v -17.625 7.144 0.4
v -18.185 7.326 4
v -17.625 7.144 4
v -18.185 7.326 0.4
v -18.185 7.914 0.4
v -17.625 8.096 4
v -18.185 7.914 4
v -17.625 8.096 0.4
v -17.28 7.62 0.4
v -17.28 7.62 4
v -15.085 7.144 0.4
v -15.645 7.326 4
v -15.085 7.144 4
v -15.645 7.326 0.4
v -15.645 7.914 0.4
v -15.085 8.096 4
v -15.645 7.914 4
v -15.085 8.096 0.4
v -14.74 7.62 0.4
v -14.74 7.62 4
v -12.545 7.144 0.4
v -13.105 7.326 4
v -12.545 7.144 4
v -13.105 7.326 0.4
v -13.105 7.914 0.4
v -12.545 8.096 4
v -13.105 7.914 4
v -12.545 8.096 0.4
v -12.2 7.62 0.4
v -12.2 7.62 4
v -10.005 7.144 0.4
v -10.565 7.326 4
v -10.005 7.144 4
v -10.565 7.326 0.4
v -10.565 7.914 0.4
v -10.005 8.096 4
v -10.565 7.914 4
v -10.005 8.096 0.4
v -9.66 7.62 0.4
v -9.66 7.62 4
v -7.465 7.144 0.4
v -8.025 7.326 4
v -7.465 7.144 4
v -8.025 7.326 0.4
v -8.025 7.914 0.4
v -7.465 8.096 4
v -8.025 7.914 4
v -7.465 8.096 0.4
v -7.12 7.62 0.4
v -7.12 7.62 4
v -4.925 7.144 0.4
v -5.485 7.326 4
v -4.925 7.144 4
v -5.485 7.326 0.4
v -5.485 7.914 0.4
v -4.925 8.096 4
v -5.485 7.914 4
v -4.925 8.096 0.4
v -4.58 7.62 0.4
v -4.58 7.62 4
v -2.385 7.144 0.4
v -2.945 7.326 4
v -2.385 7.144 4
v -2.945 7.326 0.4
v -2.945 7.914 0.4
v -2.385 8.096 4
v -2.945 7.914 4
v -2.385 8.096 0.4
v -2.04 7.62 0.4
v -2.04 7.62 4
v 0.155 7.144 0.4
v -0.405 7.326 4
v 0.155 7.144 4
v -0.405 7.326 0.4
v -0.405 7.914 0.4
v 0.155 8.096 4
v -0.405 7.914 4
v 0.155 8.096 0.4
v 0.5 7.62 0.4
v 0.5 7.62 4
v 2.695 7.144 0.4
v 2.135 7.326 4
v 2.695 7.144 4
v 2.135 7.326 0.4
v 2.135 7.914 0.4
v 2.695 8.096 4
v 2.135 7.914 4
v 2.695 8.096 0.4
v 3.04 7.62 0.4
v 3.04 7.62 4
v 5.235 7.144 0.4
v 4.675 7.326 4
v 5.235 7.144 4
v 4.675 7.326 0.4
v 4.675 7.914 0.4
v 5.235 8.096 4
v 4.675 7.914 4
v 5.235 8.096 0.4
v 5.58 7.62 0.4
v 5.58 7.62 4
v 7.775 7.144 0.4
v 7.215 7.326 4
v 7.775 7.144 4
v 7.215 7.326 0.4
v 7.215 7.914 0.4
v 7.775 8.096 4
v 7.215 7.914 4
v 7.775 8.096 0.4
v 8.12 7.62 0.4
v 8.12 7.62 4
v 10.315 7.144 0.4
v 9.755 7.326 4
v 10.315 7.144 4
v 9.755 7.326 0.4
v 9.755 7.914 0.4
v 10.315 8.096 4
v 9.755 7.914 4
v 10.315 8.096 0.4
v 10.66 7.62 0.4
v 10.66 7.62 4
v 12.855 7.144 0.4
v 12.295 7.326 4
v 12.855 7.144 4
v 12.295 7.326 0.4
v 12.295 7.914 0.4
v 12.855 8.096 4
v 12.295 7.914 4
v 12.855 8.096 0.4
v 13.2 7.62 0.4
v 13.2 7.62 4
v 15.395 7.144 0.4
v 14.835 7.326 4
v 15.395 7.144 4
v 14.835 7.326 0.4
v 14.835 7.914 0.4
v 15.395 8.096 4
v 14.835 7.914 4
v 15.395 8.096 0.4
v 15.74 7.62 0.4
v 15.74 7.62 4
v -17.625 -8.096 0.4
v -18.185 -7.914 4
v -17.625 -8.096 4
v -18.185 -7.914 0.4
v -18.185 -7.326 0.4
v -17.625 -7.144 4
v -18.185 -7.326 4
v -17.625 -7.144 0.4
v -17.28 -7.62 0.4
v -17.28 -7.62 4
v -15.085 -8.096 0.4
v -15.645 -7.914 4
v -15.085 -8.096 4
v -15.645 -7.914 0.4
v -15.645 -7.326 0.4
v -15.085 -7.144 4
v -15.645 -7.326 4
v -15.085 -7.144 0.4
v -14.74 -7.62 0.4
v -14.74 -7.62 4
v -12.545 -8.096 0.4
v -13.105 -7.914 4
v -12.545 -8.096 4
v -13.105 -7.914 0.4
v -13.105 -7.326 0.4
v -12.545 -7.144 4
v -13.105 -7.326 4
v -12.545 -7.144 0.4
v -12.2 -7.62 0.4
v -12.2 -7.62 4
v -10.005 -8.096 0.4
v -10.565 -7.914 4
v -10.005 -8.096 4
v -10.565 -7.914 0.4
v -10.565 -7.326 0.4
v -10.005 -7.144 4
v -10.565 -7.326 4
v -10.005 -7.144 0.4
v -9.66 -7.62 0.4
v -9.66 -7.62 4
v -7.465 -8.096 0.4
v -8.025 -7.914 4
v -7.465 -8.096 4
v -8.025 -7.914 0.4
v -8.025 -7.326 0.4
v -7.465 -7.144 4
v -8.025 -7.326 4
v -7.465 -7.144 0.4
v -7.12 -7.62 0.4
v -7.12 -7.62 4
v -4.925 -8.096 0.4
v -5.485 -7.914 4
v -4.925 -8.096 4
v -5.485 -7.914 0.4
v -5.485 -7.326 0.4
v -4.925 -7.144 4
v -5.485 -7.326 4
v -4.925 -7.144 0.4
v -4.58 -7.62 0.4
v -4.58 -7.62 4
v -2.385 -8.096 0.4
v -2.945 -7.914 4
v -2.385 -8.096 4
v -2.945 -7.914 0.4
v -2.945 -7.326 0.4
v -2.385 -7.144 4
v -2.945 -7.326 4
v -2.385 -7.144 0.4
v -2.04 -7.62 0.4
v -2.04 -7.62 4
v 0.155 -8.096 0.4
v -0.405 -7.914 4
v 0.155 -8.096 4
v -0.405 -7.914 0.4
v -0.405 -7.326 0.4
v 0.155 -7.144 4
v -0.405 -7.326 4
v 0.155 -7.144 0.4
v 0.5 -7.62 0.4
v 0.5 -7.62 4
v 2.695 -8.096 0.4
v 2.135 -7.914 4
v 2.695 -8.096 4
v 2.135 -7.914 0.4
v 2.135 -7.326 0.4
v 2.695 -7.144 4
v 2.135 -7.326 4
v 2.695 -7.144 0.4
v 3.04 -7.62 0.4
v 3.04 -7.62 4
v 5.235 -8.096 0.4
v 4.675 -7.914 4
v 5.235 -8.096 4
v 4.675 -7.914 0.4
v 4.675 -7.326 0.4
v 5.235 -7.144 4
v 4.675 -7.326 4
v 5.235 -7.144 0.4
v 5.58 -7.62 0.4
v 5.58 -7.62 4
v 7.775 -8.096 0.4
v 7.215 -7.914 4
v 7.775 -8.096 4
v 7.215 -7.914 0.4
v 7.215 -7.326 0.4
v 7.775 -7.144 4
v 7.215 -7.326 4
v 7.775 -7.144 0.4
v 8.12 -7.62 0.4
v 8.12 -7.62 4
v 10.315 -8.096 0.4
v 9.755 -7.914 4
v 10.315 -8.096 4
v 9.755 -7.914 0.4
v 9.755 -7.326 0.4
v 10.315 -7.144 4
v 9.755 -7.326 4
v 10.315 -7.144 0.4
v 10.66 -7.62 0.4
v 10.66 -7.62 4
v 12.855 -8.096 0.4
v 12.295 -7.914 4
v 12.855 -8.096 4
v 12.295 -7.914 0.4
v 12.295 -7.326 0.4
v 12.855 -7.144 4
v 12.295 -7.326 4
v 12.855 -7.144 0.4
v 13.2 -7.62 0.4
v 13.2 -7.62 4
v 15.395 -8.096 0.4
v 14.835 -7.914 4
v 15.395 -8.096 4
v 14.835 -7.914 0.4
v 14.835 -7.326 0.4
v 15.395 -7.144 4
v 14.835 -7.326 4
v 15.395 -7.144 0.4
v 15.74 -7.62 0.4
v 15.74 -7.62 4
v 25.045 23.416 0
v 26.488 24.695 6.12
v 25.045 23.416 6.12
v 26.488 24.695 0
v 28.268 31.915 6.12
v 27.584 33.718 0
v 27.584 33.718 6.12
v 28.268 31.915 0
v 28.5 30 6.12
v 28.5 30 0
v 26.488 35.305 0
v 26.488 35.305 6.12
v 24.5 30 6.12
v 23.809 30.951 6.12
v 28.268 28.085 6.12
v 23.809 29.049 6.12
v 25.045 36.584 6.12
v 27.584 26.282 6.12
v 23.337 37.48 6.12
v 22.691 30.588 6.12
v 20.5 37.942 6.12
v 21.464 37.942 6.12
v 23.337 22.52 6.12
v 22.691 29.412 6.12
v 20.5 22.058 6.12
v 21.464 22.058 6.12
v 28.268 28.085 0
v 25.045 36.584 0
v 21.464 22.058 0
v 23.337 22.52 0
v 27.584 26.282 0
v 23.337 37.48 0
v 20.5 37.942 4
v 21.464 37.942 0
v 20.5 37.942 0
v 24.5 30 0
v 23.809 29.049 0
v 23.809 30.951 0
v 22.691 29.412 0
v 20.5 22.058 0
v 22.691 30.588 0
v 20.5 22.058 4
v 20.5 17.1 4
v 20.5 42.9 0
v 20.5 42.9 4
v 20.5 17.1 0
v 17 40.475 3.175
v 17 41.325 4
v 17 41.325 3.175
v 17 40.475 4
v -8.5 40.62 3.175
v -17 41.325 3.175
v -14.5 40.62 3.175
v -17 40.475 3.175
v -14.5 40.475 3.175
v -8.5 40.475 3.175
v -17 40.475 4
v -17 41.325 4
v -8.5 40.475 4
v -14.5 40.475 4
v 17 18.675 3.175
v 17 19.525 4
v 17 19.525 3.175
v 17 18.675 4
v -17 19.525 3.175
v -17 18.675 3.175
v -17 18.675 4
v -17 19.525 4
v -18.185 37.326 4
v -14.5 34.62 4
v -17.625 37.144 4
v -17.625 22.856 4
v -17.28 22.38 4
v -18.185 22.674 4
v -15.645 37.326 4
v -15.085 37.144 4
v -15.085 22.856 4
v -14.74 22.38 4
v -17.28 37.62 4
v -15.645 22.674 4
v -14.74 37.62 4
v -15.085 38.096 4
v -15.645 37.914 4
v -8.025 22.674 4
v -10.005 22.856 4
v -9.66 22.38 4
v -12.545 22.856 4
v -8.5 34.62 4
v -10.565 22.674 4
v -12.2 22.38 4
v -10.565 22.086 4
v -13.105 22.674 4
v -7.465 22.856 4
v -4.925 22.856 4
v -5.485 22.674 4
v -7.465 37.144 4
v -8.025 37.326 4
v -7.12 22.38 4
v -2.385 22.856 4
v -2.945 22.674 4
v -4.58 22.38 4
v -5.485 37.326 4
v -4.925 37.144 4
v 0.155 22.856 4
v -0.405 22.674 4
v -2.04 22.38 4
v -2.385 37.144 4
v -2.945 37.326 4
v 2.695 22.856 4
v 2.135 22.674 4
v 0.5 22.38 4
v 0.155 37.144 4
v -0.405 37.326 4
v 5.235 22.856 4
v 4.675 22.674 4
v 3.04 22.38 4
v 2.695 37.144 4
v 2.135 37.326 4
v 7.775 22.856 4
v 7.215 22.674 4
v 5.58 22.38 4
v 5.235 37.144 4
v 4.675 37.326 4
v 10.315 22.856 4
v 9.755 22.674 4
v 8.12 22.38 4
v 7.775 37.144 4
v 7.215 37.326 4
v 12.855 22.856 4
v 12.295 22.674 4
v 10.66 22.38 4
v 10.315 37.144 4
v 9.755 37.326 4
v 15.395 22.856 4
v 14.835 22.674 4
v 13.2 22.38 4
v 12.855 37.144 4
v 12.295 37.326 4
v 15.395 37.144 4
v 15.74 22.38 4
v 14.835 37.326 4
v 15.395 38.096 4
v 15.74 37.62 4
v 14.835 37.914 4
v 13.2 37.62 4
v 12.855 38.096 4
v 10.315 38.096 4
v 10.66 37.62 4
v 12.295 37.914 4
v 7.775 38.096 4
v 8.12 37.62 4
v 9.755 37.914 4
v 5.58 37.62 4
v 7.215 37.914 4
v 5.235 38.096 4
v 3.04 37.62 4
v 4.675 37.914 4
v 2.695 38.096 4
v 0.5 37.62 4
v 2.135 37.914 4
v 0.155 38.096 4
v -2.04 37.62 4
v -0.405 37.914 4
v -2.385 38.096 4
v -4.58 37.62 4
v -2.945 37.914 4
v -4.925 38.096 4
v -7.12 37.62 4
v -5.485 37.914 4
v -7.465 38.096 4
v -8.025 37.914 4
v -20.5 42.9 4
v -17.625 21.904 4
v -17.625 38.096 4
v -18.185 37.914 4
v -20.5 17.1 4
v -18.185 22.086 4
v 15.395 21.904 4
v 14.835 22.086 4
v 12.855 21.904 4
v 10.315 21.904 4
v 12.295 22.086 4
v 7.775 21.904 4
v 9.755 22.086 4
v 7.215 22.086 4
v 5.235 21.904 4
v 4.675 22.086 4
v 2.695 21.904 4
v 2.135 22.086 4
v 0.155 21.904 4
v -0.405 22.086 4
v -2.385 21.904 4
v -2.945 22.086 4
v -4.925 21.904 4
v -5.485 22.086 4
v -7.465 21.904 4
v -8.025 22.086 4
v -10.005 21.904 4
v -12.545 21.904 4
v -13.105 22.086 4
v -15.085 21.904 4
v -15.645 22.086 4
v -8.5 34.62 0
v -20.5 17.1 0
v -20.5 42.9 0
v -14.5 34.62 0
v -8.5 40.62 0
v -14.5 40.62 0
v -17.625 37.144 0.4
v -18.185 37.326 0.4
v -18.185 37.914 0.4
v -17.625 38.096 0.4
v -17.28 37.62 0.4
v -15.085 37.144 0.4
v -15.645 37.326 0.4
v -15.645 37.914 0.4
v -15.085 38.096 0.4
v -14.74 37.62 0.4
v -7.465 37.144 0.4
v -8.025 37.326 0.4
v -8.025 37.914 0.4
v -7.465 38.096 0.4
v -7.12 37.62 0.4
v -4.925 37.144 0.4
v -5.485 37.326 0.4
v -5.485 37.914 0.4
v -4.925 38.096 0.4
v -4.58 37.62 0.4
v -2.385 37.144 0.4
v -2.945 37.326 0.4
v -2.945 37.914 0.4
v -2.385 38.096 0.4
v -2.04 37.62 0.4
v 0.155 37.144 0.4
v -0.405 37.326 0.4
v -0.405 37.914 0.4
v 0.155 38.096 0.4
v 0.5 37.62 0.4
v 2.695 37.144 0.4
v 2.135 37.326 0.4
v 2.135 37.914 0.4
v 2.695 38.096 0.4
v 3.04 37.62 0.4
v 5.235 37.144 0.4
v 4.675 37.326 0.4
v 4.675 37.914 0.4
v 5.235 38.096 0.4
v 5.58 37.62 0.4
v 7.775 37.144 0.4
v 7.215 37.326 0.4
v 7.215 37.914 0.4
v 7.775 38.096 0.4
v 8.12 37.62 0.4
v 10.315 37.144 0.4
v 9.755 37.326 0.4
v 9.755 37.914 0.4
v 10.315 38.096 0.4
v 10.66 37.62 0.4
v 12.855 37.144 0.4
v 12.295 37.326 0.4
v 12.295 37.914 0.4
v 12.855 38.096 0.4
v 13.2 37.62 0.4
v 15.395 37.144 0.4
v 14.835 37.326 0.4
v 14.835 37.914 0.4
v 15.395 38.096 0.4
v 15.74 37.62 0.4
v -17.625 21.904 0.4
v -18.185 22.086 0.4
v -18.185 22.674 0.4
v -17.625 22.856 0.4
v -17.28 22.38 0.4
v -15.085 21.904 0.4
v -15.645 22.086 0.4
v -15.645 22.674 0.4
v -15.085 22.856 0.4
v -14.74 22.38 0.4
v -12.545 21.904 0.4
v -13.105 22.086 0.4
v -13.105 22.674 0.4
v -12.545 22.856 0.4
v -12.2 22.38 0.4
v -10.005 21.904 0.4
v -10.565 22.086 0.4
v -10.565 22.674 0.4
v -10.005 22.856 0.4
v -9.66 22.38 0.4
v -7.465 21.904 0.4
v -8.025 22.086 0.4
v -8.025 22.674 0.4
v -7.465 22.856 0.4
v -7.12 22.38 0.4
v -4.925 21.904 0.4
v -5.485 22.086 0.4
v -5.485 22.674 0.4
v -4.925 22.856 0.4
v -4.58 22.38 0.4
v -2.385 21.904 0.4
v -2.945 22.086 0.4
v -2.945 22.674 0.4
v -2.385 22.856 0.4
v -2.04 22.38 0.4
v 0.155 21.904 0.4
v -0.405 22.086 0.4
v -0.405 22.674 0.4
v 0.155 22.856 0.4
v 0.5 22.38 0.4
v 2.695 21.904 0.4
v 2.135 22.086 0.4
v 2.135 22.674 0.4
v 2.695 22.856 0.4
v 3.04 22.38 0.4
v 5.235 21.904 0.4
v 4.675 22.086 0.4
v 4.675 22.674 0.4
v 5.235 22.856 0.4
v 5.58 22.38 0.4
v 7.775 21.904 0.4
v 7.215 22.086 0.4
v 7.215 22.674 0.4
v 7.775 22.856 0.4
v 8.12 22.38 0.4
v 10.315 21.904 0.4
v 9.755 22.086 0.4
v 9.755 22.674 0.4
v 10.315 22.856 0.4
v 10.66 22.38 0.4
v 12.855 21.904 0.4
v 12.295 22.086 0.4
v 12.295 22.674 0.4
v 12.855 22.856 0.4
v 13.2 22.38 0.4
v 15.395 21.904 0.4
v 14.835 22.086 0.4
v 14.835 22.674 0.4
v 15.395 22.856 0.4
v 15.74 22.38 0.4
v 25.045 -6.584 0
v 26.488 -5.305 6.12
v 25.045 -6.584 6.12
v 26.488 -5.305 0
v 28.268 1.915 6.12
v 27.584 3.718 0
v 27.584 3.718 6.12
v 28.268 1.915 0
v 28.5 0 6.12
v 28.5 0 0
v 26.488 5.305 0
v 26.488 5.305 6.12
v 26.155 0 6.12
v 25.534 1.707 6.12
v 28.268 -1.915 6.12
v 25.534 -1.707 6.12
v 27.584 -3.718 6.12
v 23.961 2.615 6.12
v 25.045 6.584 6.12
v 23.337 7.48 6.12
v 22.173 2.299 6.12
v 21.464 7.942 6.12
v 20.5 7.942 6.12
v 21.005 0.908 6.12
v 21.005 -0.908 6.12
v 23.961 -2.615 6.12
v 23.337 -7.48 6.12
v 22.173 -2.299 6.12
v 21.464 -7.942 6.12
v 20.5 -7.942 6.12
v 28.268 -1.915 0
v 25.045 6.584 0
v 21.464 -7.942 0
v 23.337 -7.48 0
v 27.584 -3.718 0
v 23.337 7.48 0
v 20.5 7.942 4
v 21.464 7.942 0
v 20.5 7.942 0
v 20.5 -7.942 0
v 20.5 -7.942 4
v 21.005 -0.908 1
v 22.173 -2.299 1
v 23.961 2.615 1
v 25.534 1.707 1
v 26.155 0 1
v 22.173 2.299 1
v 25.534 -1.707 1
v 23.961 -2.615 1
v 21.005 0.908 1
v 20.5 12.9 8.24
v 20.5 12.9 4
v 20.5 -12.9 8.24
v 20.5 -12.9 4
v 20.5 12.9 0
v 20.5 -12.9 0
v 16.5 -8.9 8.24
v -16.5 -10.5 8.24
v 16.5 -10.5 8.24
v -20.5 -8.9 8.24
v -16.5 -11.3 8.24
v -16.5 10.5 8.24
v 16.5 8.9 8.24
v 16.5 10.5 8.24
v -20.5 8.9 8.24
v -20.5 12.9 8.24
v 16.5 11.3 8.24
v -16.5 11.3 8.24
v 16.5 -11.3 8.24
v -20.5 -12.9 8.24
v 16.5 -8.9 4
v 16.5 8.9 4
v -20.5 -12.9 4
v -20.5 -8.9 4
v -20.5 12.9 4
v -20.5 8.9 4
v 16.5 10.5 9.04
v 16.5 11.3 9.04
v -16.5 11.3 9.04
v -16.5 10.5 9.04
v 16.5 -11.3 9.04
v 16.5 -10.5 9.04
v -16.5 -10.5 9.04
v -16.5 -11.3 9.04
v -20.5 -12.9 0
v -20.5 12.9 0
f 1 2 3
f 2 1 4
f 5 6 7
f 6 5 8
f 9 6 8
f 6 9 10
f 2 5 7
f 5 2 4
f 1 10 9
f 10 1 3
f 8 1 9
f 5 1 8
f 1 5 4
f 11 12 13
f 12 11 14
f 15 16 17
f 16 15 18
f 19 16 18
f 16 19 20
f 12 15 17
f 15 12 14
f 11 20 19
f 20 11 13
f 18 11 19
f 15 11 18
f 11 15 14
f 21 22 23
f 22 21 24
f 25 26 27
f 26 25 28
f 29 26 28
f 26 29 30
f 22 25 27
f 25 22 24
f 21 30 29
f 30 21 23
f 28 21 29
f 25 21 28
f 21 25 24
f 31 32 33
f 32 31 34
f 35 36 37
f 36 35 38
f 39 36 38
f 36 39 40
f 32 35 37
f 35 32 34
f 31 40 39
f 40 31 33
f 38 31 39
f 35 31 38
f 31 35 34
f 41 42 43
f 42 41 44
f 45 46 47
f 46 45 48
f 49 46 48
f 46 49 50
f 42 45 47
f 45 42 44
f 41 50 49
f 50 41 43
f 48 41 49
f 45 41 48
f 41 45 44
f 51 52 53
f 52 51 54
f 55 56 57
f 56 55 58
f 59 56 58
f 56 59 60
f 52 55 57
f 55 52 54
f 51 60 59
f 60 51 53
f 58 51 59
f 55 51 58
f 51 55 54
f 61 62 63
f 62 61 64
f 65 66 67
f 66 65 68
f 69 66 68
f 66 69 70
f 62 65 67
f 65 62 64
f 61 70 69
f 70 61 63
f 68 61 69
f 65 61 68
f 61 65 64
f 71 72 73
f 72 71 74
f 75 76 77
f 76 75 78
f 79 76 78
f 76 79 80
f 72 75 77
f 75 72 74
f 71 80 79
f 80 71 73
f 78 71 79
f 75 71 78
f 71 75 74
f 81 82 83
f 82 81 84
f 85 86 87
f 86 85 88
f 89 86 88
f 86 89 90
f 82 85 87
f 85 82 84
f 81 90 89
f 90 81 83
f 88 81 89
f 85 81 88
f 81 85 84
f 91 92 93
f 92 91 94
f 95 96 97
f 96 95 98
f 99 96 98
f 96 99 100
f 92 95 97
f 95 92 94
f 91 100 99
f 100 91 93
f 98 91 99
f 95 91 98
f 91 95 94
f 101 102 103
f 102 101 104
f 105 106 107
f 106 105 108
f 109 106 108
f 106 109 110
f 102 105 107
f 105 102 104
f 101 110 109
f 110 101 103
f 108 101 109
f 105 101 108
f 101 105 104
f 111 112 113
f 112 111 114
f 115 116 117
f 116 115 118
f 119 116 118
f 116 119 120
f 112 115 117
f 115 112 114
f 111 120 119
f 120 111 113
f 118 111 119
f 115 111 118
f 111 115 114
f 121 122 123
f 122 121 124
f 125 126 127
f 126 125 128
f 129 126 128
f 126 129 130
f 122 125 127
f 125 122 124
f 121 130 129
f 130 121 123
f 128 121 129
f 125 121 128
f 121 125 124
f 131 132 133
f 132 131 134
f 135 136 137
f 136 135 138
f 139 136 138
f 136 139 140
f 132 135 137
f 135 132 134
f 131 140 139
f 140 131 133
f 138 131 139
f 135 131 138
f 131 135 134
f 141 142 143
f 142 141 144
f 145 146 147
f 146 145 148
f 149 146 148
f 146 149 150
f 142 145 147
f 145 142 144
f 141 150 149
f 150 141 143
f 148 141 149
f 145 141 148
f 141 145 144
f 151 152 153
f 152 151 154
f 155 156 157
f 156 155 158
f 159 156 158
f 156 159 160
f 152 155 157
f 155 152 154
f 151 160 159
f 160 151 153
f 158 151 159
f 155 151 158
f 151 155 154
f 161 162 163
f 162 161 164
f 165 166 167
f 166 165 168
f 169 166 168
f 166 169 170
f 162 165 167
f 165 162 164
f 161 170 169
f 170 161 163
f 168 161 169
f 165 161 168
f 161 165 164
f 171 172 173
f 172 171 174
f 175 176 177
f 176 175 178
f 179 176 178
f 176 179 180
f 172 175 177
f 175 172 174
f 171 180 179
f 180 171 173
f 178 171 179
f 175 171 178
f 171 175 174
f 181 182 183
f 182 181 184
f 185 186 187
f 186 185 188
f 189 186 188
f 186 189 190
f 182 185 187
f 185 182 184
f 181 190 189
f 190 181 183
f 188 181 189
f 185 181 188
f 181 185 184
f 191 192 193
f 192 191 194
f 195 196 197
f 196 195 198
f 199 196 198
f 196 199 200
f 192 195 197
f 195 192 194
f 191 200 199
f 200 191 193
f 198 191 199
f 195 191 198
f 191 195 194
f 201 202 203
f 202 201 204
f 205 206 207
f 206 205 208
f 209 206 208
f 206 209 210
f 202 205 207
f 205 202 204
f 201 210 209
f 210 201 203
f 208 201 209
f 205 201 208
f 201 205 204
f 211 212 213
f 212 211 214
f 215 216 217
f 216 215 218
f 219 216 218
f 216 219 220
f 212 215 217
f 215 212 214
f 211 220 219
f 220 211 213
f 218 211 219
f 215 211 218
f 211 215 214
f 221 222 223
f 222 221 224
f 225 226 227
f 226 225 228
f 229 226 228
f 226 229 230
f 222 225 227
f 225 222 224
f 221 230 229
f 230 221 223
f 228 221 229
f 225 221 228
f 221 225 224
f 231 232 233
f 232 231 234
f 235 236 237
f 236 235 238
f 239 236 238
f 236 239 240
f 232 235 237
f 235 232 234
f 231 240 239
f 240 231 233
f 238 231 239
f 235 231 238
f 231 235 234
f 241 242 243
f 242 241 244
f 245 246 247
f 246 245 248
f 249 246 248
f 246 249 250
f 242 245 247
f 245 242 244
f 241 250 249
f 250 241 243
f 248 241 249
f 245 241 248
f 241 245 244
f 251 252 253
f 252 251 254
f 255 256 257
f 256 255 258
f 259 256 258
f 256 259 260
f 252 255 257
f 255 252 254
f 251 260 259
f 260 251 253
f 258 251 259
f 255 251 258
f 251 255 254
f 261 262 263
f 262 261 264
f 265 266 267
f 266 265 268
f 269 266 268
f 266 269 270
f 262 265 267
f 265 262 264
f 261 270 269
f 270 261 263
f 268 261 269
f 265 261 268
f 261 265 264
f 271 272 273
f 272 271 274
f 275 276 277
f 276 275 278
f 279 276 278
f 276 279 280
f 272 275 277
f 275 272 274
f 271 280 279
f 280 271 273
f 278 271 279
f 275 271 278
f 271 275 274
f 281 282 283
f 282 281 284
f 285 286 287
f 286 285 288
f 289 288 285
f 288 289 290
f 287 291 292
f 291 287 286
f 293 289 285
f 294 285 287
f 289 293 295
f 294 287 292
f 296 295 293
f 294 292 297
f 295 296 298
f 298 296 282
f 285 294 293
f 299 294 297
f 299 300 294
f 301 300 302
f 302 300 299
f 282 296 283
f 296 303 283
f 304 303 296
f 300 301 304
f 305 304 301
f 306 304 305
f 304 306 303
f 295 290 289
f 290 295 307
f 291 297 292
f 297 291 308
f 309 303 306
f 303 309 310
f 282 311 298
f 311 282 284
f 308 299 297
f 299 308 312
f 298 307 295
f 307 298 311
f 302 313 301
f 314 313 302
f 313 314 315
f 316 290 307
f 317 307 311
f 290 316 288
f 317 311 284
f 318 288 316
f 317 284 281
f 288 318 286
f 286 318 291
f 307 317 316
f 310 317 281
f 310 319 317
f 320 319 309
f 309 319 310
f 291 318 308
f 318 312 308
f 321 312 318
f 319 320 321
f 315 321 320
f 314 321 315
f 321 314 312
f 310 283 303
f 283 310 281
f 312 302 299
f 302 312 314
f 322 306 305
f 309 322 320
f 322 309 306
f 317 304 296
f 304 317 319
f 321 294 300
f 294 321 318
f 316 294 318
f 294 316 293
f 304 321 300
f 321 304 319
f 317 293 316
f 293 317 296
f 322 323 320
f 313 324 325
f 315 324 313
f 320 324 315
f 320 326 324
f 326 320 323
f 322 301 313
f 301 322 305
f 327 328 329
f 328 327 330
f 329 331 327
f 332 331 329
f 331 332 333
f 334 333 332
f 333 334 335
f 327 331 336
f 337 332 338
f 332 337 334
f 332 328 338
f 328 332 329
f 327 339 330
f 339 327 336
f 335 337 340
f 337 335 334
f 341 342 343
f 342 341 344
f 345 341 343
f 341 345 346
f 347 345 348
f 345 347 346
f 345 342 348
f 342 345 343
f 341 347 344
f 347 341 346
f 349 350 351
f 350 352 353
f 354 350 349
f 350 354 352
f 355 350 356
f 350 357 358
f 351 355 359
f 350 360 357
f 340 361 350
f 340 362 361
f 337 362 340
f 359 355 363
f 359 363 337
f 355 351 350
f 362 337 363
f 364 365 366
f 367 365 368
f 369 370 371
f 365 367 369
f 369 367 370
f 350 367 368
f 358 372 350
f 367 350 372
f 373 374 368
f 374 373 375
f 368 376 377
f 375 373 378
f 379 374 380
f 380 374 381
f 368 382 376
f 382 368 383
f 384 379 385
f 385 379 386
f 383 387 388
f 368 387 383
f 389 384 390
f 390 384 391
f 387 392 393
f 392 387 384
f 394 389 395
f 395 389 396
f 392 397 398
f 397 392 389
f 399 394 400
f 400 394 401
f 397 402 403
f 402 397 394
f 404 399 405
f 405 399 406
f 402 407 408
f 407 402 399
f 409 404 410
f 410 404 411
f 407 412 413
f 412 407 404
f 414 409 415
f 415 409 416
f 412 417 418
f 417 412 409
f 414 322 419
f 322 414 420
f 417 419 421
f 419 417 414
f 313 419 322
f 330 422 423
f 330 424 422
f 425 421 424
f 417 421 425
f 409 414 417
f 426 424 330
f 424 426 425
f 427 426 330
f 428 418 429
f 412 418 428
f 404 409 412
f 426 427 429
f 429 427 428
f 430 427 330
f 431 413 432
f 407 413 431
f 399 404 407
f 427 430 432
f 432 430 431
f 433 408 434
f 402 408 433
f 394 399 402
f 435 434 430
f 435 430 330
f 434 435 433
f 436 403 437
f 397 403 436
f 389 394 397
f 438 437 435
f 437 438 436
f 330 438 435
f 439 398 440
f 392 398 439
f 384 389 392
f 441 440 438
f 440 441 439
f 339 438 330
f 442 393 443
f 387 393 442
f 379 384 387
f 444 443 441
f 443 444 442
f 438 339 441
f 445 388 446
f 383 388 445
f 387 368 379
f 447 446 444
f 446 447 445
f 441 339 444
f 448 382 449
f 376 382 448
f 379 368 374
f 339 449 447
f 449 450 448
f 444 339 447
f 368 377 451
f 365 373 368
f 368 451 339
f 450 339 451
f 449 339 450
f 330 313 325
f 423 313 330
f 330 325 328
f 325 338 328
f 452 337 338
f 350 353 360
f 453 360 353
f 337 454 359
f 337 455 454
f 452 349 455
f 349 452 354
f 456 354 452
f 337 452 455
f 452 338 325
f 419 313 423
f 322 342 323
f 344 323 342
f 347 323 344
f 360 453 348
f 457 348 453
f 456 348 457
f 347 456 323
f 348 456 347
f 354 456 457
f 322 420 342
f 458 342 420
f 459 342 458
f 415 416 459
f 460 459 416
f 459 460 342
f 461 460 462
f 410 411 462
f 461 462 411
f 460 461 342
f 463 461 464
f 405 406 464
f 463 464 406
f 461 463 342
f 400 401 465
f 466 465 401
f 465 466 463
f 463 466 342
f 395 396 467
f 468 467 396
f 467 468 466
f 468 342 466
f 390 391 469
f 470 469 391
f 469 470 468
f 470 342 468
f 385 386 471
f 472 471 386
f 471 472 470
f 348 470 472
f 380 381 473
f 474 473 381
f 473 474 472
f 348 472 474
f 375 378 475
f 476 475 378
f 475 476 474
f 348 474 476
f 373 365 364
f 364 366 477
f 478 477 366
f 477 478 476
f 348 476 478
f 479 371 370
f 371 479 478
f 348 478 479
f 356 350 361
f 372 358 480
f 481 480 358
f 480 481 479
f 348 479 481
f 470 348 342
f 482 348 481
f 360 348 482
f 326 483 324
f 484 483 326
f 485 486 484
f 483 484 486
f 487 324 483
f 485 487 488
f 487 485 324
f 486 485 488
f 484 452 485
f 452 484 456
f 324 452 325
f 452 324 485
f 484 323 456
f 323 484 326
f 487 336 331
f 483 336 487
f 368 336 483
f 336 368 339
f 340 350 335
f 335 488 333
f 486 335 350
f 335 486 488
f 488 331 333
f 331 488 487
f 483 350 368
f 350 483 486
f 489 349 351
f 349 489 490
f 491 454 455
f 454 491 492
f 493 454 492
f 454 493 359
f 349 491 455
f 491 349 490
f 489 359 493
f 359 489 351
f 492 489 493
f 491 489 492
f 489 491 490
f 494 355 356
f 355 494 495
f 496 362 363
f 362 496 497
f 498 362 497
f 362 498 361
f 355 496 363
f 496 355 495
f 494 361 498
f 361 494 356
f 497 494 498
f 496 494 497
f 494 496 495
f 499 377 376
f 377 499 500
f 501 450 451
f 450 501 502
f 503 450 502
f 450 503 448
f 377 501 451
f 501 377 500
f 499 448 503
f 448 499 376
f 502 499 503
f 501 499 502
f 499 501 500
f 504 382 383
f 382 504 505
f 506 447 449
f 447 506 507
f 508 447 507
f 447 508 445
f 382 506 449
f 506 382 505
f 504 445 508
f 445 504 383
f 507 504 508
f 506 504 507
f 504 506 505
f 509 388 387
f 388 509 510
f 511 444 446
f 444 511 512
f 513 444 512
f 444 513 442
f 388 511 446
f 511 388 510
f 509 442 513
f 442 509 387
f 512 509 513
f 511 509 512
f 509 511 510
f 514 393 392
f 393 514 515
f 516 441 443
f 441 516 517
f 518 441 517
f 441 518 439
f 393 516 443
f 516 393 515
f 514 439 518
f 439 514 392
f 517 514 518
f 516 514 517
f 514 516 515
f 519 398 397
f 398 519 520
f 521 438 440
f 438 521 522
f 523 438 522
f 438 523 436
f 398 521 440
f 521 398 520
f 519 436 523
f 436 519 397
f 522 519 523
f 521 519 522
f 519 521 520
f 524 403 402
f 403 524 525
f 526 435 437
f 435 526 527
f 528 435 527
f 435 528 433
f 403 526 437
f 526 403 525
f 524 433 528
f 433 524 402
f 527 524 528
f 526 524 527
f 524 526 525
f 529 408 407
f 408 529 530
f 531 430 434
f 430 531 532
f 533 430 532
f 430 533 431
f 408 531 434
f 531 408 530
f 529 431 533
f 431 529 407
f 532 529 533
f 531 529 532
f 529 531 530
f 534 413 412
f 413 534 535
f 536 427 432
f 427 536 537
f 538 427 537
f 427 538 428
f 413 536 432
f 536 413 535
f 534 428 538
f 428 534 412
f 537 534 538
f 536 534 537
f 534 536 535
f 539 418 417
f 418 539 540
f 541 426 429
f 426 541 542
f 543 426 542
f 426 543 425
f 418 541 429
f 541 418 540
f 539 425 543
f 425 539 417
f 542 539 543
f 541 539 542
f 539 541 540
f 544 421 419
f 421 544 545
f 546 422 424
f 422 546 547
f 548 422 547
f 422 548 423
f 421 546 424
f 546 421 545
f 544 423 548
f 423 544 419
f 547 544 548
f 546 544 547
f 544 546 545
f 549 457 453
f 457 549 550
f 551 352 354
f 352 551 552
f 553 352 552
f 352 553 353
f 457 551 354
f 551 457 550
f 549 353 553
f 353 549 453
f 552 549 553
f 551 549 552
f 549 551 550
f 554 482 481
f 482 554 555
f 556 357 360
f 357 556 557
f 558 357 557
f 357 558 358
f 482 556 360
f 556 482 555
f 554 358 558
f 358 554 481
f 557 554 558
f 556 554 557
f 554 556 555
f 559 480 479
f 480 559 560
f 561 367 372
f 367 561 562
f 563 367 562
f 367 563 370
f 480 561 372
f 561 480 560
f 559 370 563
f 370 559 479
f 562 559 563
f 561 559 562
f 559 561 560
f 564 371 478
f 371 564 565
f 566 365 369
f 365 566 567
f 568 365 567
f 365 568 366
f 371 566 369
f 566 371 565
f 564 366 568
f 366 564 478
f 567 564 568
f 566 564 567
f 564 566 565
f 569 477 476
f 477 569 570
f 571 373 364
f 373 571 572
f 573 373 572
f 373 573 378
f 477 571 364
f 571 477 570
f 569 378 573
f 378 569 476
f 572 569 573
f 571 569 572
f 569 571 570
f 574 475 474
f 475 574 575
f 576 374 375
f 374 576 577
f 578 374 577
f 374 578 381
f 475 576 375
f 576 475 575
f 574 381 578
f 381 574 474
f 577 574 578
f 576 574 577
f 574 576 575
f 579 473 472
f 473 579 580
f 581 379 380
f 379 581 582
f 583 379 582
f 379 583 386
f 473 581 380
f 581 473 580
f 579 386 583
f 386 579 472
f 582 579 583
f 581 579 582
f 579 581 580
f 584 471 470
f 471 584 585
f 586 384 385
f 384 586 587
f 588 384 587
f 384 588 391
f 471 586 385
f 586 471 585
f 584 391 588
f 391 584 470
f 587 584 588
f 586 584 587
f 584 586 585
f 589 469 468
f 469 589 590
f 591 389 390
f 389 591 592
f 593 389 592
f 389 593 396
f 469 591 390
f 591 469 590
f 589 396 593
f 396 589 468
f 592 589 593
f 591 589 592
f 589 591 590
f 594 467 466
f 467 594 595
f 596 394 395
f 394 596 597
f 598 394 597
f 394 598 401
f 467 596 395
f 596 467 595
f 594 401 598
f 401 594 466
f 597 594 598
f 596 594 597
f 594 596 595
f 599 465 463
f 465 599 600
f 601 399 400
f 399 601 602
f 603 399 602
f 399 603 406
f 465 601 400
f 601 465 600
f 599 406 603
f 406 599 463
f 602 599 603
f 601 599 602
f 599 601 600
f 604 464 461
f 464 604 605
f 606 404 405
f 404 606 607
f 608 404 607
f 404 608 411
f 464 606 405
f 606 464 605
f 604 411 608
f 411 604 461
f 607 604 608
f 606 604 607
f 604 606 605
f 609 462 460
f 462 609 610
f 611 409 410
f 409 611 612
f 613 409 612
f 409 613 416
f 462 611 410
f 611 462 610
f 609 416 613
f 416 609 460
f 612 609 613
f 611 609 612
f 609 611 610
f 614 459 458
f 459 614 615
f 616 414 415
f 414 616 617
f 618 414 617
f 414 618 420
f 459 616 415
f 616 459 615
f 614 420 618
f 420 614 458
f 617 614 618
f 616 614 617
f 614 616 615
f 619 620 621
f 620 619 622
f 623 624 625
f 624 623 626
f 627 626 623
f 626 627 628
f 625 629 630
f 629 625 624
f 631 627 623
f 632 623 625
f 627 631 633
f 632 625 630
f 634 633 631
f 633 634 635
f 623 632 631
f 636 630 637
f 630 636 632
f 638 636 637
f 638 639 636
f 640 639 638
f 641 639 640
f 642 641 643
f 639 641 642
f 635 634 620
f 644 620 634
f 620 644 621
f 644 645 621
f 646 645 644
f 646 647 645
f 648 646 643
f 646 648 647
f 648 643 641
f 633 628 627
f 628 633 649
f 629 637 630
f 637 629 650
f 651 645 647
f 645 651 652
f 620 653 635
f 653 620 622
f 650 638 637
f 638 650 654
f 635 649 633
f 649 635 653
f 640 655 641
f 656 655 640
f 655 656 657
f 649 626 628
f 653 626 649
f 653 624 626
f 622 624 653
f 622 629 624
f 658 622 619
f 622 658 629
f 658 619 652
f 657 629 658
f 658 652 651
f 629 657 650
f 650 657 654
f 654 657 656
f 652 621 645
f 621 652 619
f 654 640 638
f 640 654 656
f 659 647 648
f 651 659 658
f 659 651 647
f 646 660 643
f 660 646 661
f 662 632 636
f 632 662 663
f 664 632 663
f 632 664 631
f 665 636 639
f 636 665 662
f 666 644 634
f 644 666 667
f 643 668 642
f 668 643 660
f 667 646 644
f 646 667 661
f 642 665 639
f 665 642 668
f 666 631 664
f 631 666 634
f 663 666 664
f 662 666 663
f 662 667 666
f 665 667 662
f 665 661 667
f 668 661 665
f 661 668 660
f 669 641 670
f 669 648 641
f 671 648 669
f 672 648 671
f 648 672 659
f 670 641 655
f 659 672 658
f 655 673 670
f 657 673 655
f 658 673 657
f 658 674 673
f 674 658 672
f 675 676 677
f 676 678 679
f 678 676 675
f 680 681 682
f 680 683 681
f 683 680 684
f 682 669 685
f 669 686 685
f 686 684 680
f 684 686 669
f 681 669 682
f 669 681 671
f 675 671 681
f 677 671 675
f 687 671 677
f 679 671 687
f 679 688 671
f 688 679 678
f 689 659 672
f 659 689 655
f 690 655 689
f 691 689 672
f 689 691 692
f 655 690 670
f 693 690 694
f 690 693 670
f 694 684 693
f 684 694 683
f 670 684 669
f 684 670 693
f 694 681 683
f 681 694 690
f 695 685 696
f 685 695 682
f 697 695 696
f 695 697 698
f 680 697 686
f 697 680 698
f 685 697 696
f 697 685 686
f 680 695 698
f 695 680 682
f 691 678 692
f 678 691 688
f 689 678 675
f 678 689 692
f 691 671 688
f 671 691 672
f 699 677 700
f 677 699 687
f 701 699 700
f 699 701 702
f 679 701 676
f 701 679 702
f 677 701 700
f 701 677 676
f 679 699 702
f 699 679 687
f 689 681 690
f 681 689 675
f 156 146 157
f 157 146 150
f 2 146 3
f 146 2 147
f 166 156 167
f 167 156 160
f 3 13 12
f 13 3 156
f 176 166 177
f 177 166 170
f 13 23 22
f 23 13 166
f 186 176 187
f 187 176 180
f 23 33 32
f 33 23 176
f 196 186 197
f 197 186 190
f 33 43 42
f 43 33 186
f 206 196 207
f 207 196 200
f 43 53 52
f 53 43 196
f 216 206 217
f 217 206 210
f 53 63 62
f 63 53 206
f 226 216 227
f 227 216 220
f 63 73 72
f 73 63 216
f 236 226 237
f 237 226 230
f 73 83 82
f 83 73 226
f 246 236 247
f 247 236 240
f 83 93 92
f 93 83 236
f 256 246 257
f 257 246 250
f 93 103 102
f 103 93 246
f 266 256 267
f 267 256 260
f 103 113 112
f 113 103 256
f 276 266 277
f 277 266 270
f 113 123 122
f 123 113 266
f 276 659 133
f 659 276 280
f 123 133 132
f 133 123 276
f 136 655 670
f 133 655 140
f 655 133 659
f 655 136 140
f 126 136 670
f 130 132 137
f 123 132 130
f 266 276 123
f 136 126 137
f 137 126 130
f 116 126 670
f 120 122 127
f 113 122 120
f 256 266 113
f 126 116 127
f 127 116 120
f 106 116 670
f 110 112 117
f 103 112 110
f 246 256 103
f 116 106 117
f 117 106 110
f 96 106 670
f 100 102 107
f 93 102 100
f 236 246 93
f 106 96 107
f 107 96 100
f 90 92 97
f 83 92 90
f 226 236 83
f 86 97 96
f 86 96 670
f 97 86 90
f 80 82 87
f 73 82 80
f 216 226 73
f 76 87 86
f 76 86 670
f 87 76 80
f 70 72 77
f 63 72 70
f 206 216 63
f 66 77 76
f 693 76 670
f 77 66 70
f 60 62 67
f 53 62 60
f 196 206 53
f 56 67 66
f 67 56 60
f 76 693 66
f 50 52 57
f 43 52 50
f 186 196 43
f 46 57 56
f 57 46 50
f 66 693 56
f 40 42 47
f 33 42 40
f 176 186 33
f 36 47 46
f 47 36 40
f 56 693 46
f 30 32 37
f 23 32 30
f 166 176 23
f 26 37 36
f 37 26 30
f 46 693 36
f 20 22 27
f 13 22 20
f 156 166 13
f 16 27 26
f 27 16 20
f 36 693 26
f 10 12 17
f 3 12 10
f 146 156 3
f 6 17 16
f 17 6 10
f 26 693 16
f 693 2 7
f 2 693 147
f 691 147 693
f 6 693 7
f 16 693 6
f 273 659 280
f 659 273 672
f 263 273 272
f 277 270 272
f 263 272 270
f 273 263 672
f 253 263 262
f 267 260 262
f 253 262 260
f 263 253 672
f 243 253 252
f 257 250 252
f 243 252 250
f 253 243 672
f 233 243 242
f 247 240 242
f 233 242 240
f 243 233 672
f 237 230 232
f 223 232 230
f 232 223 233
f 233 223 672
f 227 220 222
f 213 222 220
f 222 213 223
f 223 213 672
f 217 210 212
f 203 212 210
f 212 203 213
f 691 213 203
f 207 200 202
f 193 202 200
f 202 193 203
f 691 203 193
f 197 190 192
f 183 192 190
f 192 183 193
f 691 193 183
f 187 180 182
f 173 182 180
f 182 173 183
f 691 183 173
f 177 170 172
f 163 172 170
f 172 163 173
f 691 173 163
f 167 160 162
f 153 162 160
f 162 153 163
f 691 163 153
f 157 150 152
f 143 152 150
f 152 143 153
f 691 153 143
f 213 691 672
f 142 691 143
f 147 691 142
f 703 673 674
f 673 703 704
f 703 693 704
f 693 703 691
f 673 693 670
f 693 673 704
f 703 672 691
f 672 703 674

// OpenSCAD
union () {
  translate ([0, 30, 0]) {
    union () {
      translate ([0, 0, 3.06]) {
        translate ([41/2, 0, 0]) {
          difference () {
            union () {
              cylinder (h=6.12, r=8, center=true);
            }
            translate ([3, 0, 0]) {
              cylinder (h=100, r=1, center=true);
            }
            translate ([-50, 0, 0]) {
              cube ([100, 100, 100], center=true);
            }
          }
        }
      }
      difference () {
        translate ([0, 0, 2]) {
          difference () {
            cube ([41, 25.8, 4], center=true);
            translate ([0, 0, 1.2]) {
              union () {
                translate ([0, 10.9, 0.4]) {
                  cube ([34, 0.8500000000000001, 0.8500000000000001], center=true);
                }
                translate ([0, -10.9, 0.4]) {
                  cube ([34, 0.8500000000000001, 0.8500000000000001], center=true);
                }
              }
            }
            translate ([-11.5, 7.62, 0]) {
              cube ([6, 6, 10], center=true);
            }
          }
        }
        translate ([0, 0, 2.2025]) {
          union () {
            translate ([0, 7.62, 0]) {
              union () {
                translate ([-17.78, 0, 0]) {
                  cylinder (h=3.6049999999999995, r=0.5, center=true);
                }
                translate ([-15.24, 0, 0]) {
                  cylinder (h=3.6049999999999995, r=0.5, center=true);
                }
                translate ([-12.7, 0, 0]) {
                  cylinder (h=3.6049999999999995, r=0.5, center=true);
                }
                translate ([-10.16, 0, 0]) {
                  cylinder (h=3.6049999999999995, r=0.5, center=true);
                }
                translate ([-7.62, 0, 0]) {
                  cylinder (h=3.6049999999999995, r=0.5, center=true);
                }
                translate ([-5.08, 0, 0]) {
                  cylinder (h=3.6049999999999995, r=0.5, center=true);
                }
                translate ([-2.54, 0, 0]) {
                  cylinder (h=3.6049999999999995, r=0.5, center=true);
                }
                translate ([0.0, 0, 0]) {
                  cylinder (h=3.6049999999999995, r=0.5, center=true);
                }
                translate ([2.54, 0, 0]) {
                  cylinder (h=3.6049999999999995, r=0.5, center=true);
                }
                translate ([5.08, 0, 0]) {
                  cylinder (h=3.6049999999999995, r=0.5, center=true);
                }
                translate ([7.62, 0, 0]) {
                  cylinder (h=3.6049999999999995, r=0.5, center=true);
                }
                translate ([10.16, 0, 0]) {
                  cylinder (h=3.6049999999999995, r=0.5, center=true);
                }
                translate ([12.7, 0, 0]) {
                  cylinder (h=3.6049999999999995, r=0.5, center=true);
                }
                translate ([15.24, 0, 0]) {
                  cylinder (h=3.6049999999999995, r=0.5, center=true);
                }
              }
            }
            translate ([0, -7.62, 0]) {
              union () {
                translate ([-17.78, 0, 0]) {
                  cylinder (h=3.6049999999999995, r=0.5, center=true);
                }
                translate ([-15.24, 0, 0]) {
                  cylinder (h=3.6049999999999995, r=0.5, center=true);
                }
                translate ([-12.7, 0, 0]) {
                  cylinder (h=3.6049999999999995, r=0.5, center=true);
                }
                translate ([-10.16, 0, 0]) {
                  cylinder (h=3.6049999999999995, r=0.5, center=true);
                }
                translate ([-7.62, 0, 0]) {
                  cylinder (h=3.6049999999999995, r=0.5, center=true);
                }
                translate ([-5.08, 0, 0]) {
                  cylinder (h=3.6049999999999995, r=0.5, center=true);
                }
                translate ([-2.54, 0, 0]) {
                  cylinder (h=3.6049999999999995, r=0.5, center=true);
                }
                translate ([0.0, 0, 0]) {
                  cylinder (h=3.6049999999999995, r=0.5, center=true);
                }
                translate ([2.54, 0, 0]) {
                  cylinder (h=3.6049999999999995, r=0.5, center=true);
                }
                translate ([5.08, 0, 0]) {
                  cylinder (h=3.6049999999999995, r=0.5, center=true);
                }
                translate ([7.62, 0, 0]) {
                  cylinder (h=3.6049999999999995, r=0.5, center=true);
                }
                translate ([10.16, 0, 0]) {
                  cylinder (h=3.6049999999999995, r=0.5, center=true);
                }
                translate ([12.7, 0, 0]) {
                  cylinder (h=3.6049999999999995, r=0.5, center=true);
                }
                translate ([15.24, 0, 0]) {
                  cylinder (h=3.6049999999999995, r=0.5, center=true);
                }
              }
            }
          }
        }
      }
    }
  }
  union () {
    translate ([0, 0, 3.06]) {
      translate ([41/2, 0, 0]) {
        difference () {
          union () {
            cylinder (h=6.12, r=8, center=true);
          }
          translate ([3, 0, 1]) {
            cylinder (h=6.12, r=2.655, center=true);
          }
          translate ([-50, 0, 0]) {
            cube ([100, 100, 100], center=true);
          }
        }
      }
    }
    translate ([0, 0, 6.12]) {
      union () {
        translate ([0, 10.9, 0]) {
          cube ([41, 4, 4.24], center=true);
        }
        translate ([0, 10.9, 2.52]) {
          cube ([33, 0.8, 0.8], center=true);
        }
        translate ([0, -10.9, 0]) {
          cube ([41, 4, 4.24], center=true);
        }
        translate ([0, -10.9, 2.52]) {
          cube ([33, 0.8, 0.8], center=true);
        }
        translate ([37/2, 0, 0]) {
          cube ([4, 25.8, 4.24], center=true);
        }
      }
    }
    difference () {
      translate ([0, 0, 2]) {
        cube ([41, 25.8, 4], center=true);
      }
      translate ([0, 0, 2.2025]) {
        union () {
          translate ([0, 7.62, 0]) {
            union () {
              translate ([-17.78, 0, 0]) {
                cylinder (h=3.6049999999999995, r=0.5, center=true);
              }
              translate ([-15.24, 0, 0]) {
                cylinder (h=3.6049999999999995, r=0.5, center=true);
              }
              translate ([-12.7, 0, 0]) {
                cylinder (h=3.6049999999999995, r=0.5, center=true);
              }
              translate ([-10.16, 0, 0]) {
                cylinder (h=3.6049999999999995, r=0.5, center=true);
              }
              translate ([-7.62, 0, 0]) {
                cylinder (h=3.6049999999999995, r=0.5, center=true);
              }
              translate ([-5.08, 0, 0]) {
                cylinder (h=3.6049999999999995, r=0.5, center=true);
              }
              translate ([-2.54, 0, 0]) {
                cylinder (h=3.6049999999999995, r=0.5, center=true);
              }
              translate ([0.0, 0, 0]) {
                cylinder (h=3.6049999999999995, r=0.5, center=true);
              }
              translate ([2.54, 0, 0]) {
                cylinder (h=3.6049999999999995, r=0.5, center=true);
              }
              translate ([5.08, 0, 0]) {
                cylinder (h=3.6049999999999995, r=0.5, center=true);
              }
              translate ([7.62, 0, 0]) {
                cylinder (h=3.6049999999999995, r=0.5, center=true);
              }
              translate ([10.16, 0, 0]) {
                cylinder (h=3.6049999999999995, r=0.5, center=true);
              }
              translate ([12.7, 0, 0]) {
                cylinder (h=3.6049999999999995, r=0.5, center=true);
              }
              translate ([15.24, 0, 0]) {
                cylinder (h=3.6049999999999995, r=0.5, center=true);
              }
            }
          }
          translate ([0, -7.62, 0]) {
            union () {
              translate ([-17.78, 0, 0]) {
                cylinder (h=3.6049999999999995, r=0.5, center=true);
              }
              translate ([-15.24, 0, 0]) {
                cylinder (h=3.6049999999999995, r=0.5, center=true);
              }
              translate ([-12.7, 0, 0]) {
                cylinder (h=3.6049999999999995, r=0.5, center=true);
              }
              translate ([-10.16, 0, 0]) {
                cylinder (h=3.6049999999999995, r=0.5, center=true);
              }
              translate ([-7.62, 0, 0]) {
                cylinder (h=3.6049999999999995, r=0.5, center=true);
              }
              translate ([-5.08, 0, 0]) {
                cylinder (h=3.6049999999999995, r=0.5, center=true);
              }
              translate ([-2.54, 0, 0]) {
                cylinder (h=3.6049999999999995, r=0.5, center=true);
              }
              translate ([0.0, 0, 0]) {
                cylinder (h=3.6049999999999995, r=0.5, center=true);
              }
              translate ([2.54, 0, 0]) {
                cylinder (h=3.6049999999999995, r=0.5, center=true);
              }
              translate ([5.08, 0, 0]) {
                cylinder (h=3.6049999999999995, r=0.5, center=true);
              }
              translate ([7.62, 0, 0]) {
                cylinder (h=3.6049999999999995, r=0.5, center=true);
              }
              translate ([10.16, 0, 0]) {
                cylinder (h=3.6049999999999995, r=0.5, center=true);
              }
              translate ([12.7, 0, 0]) {
                cylinder (h=3.6049999999999995, r=0.5, center=true);
              }
              translate ([15.24, 0, 0]) {
                cylinder (h=3.6049999999999995, r=0.5, center=true);
              }
            }
          }
        }
      }
    }
  }
}
